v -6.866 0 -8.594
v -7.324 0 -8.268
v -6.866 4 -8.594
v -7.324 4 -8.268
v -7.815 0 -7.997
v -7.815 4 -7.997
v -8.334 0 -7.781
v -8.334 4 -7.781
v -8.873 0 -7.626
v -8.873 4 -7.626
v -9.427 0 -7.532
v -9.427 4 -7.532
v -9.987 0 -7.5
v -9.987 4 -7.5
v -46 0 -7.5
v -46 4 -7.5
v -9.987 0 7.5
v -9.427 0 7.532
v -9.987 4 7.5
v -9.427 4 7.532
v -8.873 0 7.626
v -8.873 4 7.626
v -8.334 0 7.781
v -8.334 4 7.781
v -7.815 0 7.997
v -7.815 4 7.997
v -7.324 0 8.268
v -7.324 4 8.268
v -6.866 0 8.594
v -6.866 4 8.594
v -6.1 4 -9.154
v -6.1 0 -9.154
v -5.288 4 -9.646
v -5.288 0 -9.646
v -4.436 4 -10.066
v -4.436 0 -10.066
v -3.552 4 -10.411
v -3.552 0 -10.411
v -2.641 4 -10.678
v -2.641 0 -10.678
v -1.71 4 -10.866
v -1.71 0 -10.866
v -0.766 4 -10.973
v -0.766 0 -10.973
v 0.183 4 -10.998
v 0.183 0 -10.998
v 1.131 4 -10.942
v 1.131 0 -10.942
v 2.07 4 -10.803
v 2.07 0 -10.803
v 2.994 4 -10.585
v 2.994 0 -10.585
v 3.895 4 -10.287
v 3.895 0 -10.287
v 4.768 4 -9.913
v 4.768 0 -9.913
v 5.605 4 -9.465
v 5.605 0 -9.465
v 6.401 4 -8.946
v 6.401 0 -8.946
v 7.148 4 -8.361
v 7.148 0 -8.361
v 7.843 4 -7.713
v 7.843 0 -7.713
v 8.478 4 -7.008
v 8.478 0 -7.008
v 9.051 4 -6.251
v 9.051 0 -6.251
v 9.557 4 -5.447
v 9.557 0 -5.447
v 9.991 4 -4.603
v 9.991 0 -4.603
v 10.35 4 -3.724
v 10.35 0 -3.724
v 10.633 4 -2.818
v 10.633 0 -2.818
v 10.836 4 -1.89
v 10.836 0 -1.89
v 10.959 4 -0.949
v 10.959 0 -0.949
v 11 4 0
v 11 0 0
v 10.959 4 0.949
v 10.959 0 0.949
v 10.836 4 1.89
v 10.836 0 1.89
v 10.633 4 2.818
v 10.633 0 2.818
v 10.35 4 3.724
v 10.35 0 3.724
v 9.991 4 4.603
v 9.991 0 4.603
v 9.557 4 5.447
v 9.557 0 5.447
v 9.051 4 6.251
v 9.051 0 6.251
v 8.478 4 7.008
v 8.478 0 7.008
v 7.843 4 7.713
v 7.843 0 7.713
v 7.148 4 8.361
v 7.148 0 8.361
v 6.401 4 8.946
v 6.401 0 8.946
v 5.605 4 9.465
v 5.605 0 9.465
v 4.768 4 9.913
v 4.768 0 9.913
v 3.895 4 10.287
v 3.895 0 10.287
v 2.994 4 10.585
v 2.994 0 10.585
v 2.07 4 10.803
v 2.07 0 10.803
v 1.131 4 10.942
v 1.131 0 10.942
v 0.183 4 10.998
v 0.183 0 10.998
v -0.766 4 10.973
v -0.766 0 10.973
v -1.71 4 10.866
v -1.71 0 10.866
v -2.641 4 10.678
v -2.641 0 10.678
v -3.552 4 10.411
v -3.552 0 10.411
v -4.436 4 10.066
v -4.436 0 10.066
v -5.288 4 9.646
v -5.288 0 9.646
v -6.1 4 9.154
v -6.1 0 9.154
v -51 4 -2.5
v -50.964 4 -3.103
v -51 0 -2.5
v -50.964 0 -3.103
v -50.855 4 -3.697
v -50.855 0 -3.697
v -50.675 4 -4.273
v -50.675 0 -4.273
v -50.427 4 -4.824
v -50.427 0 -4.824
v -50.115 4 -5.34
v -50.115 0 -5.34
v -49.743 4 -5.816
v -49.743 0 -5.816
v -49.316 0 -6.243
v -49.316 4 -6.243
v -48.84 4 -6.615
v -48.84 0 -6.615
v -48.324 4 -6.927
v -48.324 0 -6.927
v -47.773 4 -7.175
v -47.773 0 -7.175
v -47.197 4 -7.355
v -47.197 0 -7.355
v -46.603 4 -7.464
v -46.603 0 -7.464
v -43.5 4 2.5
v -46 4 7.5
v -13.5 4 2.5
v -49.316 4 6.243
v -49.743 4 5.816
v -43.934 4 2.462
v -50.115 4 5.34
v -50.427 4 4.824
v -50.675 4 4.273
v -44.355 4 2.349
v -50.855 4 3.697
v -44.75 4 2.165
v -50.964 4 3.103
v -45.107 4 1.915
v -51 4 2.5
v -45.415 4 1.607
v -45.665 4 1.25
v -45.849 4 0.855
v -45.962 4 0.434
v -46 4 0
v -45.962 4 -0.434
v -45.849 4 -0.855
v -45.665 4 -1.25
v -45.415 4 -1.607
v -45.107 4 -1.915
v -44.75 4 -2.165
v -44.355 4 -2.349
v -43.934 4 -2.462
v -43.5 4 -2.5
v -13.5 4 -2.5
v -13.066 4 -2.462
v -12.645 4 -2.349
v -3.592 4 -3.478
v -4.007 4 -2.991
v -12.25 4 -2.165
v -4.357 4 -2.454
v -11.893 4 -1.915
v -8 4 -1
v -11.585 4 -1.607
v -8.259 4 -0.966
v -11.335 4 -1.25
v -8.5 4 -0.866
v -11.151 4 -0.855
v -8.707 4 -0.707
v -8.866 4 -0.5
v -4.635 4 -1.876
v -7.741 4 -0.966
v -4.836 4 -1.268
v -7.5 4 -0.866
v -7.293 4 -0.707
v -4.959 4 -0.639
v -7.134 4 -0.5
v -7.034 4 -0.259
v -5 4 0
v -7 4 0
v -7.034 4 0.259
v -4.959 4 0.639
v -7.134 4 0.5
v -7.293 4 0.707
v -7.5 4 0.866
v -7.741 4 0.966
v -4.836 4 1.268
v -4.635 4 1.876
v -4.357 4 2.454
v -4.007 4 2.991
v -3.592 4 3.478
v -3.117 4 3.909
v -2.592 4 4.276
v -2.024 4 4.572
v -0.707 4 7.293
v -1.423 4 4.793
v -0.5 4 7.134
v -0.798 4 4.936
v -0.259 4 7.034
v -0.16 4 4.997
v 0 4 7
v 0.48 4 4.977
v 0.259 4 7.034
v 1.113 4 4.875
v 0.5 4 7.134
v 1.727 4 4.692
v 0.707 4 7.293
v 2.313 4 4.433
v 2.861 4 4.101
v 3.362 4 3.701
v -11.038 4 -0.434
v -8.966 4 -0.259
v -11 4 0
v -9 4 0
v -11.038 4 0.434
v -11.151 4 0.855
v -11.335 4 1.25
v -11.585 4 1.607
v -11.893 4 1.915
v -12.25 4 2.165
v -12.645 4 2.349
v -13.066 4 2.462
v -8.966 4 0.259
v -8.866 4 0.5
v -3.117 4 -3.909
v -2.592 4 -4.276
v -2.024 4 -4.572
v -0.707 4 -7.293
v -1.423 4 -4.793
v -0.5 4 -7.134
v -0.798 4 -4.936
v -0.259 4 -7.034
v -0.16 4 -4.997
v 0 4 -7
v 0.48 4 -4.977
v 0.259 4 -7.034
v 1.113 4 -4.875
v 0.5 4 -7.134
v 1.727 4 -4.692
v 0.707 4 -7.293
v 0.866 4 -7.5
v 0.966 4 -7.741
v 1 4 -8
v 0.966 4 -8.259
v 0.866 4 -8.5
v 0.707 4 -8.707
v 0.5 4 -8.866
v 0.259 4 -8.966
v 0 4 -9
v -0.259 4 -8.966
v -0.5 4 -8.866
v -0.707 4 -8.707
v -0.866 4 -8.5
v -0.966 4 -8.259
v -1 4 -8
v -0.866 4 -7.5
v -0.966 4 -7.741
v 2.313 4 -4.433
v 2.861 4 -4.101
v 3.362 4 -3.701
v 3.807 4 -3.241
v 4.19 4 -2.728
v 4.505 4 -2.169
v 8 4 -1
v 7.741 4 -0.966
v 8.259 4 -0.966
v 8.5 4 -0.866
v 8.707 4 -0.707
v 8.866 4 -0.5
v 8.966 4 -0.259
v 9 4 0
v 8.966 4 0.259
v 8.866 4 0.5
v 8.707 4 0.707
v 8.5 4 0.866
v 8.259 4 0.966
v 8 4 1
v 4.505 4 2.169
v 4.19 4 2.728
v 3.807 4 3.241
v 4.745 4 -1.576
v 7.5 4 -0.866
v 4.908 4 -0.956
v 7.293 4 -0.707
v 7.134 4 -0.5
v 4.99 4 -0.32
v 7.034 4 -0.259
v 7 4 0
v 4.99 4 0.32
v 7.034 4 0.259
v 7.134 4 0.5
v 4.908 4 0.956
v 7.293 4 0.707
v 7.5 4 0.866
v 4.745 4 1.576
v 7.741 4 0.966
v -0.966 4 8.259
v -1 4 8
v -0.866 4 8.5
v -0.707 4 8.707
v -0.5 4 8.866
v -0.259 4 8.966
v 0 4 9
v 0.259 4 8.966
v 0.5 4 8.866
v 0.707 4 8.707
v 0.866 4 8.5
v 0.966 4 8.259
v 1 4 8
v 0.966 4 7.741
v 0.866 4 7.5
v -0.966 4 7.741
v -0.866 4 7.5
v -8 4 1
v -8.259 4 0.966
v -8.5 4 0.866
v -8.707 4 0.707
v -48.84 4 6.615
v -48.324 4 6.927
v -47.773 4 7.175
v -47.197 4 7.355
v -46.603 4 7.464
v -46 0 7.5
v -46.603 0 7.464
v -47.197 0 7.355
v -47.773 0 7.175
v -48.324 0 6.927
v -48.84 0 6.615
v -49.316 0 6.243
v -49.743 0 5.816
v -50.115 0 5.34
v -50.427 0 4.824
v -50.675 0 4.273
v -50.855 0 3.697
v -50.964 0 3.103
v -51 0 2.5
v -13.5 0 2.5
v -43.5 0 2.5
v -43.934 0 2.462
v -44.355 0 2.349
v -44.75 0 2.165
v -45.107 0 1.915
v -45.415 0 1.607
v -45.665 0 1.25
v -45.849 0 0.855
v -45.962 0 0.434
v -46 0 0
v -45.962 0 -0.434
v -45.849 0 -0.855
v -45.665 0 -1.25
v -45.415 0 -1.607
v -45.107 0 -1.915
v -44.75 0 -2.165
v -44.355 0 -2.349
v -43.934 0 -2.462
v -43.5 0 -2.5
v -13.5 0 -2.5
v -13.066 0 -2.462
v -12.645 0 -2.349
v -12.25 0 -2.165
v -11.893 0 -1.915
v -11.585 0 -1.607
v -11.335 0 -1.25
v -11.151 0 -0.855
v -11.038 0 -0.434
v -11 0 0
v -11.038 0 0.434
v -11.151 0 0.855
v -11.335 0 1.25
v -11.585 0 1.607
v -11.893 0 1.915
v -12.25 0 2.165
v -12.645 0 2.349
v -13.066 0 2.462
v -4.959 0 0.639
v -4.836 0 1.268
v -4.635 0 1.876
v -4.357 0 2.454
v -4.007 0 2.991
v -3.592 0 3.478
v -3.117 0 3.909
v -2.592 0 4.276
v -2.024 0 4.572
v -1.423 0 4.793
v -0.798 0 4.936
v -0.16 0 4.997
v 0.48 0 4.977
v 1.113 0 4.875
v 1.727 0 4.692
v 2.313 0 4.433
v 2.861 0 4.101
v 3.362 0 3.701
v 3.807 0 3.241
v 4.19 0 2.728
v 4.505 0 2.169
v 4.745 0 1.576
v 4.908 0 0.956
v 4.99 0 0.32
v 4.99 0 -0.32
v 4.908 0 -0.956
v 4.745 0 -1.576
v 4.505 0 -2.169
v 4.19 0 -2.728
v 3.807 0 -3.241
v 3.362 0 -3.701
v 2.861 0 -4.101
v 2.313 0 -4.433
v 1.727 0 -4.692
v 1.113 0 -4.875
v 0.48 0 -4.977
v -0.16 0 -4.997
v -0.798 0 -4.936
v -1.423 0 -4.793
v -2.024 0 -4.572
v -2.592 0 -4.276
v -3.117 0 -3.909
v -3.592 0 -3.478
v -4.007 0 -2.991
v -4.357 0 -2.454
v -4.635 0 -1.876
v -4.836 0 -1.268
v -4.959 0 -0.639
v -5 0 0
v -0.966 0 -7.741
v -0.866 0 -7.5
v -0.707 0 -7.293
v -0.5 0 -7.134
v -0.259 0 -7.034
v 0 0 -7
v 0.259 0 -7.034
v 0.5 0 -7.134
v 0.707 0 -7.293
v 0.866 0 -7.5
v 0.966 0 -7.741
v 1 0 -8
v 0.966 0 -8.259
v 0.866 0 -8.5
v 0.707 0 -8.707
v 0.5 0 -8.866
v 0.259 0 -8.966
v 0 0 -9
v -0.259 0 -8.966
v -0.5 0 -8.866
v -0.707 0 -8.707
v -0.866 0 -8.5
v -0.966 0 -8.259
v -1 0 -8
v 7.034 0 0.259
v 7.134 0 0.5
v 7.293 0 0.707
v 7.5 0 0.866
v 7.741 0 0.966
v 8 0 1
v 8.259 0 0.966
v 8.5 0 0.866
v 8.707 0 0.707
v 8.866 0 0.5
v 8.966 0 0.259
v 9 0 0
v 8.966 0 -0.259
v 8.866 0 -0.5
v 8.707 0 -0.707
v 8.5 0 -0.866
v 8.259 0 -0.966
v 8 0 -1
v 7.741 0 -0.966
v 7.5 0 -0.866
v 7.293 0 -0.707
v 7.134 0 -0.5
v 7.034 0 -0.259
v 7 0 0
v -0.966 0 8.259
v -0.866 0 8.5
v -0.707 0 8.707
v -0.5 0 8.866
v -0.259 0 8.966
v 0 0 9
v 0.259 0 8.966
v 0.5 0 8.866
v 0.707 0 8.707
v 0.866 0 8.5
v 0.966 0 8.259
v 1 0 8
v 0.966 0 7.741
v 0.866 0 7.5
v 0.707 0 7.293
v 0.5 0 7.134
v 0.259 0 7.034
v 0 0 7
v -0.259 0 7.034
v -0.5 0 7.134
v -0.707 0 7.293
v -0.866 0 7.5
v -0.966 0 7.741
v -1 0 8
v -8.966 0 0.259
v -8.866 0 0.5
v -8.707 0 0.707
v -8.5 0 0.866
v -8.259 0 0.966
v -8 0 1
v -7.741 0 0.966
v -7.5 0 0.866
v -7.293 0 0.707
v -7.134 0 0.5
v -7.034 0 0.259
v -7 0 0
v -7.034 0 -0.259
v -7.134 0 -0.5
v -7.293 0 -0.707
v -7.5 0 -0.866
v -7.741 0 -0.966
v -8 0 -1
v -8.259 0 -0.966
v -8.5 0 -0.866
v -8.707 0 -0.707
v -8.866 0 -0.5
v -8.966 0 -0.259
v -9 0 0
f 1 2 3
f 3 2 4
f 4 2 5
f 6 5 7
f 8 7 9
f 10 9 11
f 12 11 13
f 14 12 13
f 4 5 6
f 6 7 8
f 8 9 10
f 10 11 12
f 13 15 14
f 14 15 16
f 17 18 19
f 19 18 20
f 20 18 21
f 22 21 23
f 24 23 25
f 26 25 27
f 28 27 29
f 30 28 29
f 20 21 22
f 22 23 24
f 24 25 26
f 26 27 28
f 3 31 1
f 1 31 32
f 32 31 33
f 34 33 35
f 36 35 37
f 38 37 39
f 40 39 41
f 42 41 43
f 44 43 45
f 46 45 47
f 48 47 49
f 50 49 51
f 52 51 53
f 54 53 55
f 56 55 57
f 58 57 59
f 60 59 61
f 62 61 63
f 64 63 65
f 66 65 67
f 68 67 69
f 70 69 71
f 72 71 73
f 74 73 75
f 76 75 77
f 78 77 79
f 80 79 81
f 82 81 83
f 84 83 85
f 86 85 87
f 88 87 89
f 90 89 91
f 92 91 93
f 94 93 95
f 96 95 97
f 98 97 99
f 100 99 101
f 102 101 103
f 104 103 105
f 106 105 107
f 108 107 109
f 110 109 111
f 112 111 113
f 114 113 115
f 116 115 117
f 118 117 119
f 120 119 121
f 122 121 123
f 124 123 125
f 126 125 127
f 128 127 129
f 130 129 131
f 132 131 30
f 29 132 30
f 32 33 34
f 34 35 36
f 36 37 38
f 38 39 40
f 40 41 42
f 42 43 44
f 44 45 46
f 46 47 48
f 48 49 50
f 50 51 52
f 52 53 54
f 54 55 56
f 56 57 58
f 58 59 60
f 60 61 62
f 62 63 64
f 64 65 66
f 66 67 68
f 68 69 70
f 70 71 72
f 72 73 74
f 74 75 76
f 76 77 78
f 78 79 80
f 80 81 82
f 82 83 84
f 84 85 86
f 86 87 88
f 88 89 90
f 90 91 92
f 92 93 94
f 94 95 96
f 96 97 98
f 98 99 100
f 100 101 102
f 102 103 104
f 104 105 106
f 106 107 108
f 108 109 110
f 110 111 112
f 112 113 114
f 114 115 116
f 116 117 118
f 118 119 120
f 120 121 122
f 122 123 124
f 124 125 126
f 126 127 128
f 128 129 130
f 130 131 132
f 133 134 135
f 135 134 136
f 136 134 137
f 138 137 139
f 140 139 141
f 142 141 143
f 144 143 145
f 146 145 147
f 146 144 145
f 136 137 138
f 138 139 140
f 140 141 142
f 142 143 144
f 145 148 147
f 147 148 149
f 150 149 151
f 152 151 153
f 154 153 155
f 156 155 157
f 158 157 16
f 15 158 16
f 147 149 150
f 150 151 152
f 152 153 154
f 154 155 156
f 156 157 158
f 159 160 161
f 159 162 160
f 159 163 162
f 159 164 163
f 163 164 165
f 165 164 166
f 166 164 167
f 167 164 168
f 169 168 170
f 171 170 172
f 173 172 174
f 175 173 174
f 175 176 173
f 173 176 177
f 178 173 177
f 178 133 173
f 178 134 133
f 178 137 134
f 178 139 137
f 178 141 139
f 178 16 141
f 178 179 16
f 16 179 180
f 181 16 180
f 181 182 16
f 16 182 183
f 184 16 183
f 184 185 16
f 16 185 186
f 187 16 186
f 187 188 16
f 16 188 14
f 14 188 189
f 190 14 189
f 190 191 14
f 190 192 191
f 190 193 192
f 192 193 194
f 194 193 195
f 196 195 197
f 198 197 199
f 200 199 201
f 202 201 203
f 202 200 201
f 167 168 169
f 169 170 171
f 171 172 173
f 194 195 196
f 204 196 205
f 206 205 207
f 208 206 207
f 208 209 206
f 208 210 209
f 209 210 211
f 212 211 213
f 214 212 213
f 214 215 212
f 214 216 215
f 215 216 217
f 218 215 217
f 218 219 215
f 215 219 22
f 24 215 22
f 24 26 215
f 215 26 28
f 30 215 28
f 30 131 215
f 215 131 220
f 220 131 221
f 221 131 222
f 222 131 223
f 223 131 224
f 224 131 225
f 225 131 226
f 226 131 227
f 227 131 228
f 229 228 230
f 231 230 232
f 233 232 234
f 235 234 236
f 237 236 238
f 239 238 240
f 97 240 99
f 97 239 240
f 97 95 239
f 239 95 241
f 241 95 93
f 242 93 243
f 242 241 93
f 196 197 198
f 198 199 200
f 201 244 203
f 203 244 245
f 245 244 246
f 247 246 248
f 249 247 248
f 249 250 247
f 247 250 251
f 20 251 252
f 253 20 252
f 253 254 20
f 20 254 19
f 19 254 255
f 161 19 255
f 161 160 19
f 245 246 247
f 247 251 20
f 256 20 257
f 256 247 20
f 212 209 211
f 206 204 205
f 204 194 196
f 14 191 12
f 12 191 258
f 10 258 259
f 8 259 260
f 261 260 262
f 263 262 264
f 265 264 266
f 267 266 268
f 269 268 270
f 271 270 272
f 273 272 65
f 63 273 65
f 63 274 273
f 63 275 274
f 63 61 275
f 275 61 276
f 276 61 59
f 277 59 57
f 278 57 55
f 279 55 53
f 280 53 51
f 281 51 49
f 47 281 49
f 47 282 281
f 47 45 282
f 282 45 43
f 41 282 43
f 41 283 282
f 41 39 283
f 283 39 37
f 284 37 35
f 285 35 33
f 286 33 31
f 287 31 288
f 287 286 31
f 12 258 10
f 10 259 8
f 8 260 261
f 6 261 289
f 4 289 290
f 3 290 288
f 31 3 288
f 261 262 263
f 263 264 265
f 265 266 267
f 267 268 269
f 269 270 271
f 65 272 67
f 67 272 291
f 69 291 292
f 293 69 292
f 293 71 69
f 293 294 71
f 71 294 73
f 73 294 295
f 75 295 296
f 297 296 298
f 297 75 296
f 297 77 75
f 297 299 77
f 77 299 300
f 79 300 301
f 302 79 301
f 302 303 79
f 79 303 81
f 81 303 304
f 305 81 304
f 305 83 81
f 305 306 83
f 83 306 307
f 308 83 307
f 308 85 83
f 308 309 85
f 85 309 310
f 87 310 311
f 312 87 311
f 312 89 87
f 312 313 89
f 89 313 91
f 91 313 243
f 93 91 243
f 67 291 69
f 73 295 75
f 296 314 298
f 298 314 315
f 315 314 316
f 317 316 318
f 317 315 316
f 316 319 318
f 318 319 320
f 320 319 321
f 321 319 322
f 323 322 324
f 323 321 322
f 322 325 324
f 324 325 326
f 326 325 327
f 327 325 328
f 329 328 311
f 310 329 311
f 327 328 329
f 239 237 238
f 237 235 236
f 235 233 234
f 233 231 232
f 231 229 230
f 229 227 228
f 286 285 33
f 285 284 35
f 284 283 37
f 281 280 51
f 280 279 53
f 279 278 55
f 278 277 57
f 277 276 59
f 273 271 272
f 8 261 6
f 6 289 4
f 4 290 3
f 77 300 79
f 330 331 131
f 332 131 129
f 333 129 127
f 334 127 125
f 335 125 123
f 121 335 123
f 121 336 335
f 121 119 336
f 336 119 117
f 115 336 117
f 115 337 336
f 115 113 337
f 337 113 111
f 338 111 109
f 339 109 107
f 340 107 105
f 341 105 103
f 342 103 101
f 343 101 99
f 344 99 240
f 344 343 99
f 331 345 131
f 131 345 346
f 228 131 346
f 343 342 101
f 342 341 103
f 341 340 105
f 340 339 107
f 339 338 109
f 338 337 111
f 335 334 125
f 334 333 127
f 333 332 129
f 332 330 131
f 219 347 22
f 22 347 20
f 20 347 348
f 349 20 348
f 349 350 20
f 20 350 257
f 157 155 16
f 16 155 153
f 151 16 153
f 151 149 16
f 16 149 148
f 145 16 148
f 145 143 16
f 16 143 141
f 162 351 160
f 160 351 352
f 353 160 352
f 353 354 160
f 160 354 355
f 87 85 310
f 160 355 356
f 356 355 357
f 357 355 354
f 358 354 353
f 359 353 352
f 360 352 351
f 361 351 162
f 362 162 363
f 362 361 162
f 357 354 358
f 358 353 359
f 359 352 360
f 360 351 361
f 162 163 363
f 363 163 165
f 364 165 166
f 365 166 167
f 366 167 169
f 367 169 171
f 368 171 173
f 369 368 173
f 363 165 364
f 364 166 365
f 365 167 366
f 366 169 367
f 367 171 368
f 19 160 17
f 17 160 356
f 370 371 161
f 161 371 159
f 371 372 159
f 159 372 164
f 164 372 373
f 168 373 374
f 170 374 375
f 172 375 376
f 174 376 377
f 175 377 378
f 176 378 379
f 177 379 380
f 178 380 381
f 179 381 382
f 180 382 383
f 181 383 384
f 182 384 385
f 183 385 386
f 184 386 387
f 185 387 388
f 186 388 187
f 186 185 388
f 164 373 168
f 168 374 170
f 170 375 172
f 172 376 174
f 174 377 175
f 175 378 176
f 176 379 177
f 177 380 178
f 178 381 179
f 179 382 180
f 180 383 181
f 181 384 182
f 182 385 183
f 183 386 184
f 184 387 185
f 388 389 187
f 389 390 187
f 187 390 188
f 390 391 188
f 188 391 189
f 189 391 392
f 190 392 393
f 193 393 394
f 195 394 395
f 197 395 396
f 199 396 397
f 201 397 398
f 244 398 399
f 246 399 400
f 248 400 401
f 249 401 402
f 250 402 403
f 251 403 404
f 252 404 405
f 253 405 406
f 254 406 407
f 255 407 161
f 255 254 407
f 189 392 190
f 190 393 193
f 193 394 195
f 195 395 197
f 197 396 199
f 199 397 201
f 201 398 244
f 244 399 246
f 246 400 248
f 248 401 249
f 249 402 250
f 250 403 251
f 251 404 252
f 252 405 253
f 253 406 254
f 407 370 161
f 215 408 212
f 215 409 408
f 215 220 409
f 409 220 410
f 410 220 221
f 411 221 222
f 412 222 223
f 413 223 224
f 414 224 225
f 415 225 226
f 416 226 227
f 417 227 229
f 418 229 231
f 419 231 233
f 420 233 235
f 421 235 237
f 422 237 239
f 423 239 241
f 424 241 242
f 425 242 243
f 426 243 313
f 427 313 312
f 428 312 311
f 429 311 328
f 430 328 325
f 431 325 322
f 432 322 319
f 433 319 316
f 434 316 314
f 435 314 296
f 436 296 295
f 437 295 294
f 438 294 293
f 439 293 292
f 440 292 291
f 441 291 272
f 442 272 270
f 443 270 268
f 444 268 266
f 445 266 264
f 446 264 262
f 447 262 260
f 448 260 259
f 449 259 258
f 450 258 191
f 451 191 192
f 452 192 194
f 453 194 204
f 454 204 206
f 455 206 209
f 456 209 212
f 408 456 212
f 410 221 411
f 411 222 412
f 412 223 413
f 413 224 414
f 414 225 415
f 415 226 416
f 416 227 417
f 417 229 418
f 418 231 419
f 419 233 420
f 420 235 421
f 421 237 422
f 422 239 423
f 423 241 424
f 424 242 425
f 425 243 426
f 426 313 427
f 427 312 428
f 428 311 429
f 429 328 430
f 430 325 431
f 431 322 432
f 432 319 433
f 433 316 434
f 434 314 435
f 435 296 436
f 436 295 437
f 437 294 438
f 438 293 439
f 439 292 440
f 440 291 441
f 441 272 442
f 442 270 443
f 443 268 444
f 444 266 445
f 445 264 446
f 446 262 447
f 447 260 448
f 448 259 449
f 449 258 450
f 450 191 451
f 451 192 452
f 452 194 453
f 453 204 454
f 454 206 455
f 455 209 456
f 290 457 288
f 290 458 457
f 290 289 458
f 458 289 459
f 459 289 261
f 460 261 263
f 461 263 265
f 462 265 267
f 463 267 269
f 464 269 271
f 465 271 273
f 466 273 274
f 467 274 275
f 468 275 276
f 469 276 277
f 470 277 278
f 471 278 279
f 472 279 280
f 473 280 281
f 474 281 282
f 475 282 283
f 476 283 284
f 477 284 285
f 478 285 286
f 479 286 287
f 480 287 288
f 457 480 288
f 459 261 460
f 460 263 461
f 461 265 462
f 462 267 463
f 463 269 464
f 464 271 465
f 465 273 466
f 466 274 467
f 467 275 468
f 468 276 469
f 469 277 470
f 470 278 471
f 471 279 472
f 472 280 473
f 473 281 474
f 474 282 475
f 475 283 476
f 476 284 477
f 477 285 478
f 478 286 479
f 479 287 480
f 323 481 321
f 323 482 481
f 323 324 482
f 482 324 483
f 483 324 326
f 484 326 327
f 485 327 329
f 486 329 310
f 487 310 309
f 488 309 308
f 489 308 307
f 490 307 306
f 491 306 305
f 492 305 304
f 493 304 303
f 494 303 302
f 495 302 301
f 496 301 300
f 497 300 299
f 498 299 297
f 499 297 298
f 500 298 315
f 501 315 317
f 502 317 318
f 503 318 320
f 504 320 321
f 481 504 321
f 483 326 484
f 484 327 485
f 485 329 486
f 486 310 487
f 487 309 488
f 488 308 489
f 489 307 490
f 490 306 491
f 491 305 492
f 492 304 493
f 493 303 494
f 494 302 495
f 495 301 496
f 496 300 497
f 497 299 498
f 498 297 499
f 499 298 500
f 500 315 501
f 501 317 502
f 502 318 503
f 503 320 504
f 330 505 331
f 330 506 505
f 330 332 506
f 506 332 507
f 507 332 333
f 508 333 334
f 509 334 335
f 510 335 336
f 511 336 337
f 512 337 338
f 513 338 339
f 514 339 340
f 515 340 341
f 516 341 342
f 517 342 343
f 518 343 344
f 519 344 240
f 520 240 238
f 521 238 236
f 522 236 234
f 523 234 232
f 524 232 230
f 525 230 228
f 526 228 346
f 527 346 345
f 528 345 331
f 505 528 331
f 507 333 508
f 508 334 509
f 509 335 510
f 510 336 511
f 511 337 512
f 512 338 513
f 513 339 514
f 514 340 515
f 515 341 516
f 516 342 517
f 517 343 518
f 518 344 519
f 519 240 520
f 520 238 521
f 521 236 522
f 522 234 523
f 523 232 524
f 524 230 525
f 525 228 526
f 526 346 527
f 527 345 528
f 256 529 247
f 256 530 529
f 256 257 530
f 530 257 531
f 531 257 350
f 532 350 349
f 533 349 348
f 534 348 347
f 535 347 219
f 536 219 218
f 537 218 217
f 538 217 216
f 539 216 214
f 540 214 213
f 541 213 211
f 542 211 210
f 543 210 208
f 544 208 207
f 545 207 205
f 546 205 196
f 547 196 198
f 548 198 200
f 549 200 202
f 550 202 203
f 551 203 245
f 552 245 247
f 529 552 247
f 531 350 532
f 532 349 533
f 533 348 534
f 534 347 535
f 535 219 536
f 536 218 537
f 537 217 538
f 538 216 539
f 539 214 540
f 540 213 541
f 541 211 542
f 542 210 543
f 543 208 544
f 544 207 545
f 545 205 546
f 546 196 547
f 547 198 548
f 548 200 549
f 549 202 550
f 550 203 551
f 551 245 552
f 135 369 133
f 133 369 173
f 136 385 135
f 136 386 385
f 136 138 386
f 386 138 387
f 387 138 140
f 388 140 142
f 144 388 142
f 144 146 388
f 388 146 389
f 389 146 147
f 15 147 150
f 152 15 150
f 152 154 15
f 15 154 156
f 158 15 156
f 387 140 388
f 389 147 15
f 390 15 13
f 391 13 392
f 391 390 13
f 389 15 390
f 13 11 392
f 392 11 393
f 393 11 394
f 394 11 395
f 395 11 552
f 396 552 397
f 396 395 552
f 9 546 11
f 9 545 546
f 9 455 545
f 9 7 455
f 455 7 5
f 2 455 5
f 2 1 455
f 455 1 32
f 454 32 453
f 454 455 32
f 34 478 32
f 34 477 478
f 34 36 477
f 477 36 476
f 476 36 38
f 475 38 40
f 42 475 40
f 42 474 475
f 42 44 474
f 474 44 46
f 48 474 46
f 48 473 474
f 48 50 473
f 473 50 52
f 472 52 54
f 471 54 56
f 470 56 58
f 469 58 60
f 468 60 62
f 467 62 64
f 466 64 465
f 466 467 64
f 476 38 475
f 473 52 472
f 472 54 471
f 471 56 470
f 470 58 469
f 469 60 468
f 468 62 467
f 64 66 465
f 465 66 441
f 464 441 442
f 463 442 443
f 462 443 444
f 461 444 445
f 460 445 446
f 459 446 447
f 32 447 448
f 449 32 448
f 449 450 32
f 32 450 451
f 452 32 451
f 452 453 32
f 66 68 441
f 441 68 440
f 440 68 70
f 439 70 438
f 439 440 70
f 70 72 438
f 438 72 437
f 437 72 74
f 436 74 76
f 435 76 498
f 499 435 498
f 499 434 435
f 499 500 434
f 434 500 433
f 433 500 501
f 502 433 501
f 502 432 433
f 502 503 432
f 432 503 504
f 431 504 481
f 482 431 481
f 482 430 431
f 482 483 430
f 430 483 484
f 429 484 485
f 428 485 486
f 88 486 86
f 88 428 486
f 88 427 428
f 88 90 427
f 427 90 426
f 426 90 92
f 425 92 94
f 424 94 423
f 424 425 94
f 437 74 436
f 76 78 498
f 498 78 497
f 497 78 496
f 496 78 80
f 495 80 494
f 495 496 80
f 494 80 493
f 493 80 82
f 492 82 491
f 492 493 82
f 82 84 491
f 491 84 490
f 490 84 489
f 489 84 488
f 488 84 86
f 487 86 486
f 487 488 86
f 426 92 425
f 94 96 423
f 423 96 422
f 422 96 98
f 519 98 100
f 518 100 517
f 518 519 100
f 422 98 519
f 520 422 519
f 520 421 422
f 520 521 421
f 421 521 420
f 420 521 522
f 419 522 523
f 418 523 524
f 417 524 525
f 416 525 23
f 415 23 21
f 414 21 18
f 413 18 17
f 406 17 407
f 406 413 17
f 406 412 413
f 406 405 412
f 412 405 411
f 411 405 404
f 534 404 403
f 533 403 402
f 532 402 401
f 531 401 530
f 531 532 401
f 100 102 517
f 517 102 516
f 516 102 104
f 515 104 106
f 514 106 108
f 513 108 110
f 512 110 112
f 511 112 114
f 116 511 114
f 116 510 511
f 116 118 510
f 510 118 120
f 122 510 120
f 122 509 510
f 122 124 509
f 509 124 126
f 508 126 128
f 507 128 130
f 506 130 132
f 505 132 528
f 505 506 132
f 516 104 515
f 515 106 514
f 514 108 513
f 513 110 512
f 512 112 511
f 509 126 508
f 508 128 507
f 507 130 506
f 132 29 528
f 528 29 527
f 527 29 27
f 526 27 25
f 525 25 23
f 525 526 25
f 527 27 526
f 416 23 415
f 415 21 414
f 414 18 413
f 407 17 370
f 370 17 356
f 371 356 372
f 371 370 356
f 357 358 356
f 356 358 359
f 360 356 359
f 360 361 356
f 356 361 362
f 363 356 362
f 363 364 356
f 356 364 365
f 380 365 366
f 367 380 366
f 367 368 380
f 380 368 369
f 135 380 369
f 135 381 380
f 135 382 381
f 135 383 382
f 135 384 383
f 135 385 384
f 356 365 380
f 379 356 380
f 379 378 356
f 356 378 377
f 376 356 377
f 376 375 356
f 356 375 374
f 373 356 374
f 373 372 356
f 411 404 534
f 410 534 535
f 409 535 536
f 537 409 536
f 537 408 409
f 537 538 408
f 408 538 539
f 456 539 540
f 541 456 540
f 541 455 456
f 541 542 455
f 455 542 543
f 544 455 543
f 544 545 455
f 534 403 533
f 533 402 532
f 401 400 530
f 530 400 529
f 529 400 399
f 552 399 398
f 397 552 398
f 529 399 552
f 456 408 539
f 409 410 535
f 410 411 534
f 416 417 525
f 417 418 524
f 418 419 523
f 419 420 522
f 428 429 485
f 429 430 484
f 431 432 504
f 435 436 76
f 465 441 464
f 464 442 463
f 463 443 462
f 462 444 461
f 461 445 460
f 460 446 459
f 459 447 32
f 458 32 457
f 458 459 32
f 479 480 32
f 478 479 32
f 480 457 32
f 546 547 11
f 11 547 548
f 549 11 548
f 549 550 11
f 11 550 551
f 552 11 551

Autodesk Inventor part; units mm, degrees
ref_plane "YZ Plane" through (0, 0, 0) normal (1, 0, 0) x (0, 1, 0)
ref_plane "XZ Plane" through (0, 0, 0) normal (0, 1, 0) x (-1, 0, 0)
ref_plane "XY Plane" through (0, 0, 0) normal (0, 0, 1) x (1, 0, 0)
sketch "Esquisse1" plane through (0, 0, 0) normal (0, 1, 0) x (-1, 0, 0)
  circle A0 centre (8, 0) radius 1
  circle A1 centre (0, 8) radius 1
  circle A2 centre (-8, 0) radius 1
  circle A3 centre (0, -8) radius 1
  line L0 (0, 0) -> (-8, 0) construction
  circle A4 centre (0, 0) radius 11 construction
  line L1 (0, 0) -> (77, 0) construction
  line L2 (0, 0) -> (0, 2.5) construction
  line L3 (0, 2.5) -> (0, 7.5) construction
  line L4 (0, 7.5) -> (8.0467, 7.5) construction
  line L5 (0, 2.5) -> (10.7121, 2.5) construction
  line L6 (11, 0) -> (46, 0) construction
  line L7 (46, 0) -> (51, 0) construction
  line L8 (8.0467, 7.5) -> (51, 7.5)
  line L9 (51, 7.5) -> (51, 0)
  line L10 (10.7121, 2.5) -> (46, 2.5) construction
  line L11 (46, 2.5) -> (46, 0) construction
  line L12 (11, 0) -> (11, 2.5) construction
  arc A5 (8.0467, 7.5) -> (-11, 0) centre (0, 0) ccw
  line L13 (11, 0) -> (13.5, 0) construction
  line L14 (46, 0) -> (43.5, 0) construction
  arc A6 (13.5, 2.5) -> (11, 0) centre (13.5, 0) ccw
  arc A7 (46, 0) -> (43.5, 2.5) centre (43.5, 0) ccw
  line L15 (13.5, 2.5) -> (43.5, 2.5)
  line L16 (8.0467, -7.5) -> (51, -7.5)
  line L17 (51, -7.5) -> (51, 0)
  arc A8 (-11, 0) -> (8.0467, -7.5) centre (0, 0) ccw
  arc A9 (11, 0) -> (13.5, -2.5) centre (13.5, 0) ccw
  arc A10 (43.5, -2.5) -> (46, 0) centre (43.5, 0) ccw
  line L18 (13.5, -2.5) -> (43.5, -2.5)
  circle A11 centre (0, 0) radius 5
  dimension "d7" = 360
  dimension "d12" = 2
  dimension "d13" = 8
  dimension "d14" = 22
  dimension "d19" = 2.5
  dimension "d20" = 5
  dimension "d21" = 35
  dimension "d22" = 5
  dimension "d29" = 10
extrude "Extrusion2" add sketch "Esquisse1" along normal blind 4
fillet "Congé5" radius 5 1 edges at (-51, 2, 7.5)
fillet "Congé6" radius 5 1 edges at (-51, 2, -7.5)
fillet "Congé7" radius 5 1 edges at (-8.0467, 2, 7.5)
fillet "Congé8" radius 5 1 edges at (-8.0467, 2, -7.5)
properties part number "moving_arm"
